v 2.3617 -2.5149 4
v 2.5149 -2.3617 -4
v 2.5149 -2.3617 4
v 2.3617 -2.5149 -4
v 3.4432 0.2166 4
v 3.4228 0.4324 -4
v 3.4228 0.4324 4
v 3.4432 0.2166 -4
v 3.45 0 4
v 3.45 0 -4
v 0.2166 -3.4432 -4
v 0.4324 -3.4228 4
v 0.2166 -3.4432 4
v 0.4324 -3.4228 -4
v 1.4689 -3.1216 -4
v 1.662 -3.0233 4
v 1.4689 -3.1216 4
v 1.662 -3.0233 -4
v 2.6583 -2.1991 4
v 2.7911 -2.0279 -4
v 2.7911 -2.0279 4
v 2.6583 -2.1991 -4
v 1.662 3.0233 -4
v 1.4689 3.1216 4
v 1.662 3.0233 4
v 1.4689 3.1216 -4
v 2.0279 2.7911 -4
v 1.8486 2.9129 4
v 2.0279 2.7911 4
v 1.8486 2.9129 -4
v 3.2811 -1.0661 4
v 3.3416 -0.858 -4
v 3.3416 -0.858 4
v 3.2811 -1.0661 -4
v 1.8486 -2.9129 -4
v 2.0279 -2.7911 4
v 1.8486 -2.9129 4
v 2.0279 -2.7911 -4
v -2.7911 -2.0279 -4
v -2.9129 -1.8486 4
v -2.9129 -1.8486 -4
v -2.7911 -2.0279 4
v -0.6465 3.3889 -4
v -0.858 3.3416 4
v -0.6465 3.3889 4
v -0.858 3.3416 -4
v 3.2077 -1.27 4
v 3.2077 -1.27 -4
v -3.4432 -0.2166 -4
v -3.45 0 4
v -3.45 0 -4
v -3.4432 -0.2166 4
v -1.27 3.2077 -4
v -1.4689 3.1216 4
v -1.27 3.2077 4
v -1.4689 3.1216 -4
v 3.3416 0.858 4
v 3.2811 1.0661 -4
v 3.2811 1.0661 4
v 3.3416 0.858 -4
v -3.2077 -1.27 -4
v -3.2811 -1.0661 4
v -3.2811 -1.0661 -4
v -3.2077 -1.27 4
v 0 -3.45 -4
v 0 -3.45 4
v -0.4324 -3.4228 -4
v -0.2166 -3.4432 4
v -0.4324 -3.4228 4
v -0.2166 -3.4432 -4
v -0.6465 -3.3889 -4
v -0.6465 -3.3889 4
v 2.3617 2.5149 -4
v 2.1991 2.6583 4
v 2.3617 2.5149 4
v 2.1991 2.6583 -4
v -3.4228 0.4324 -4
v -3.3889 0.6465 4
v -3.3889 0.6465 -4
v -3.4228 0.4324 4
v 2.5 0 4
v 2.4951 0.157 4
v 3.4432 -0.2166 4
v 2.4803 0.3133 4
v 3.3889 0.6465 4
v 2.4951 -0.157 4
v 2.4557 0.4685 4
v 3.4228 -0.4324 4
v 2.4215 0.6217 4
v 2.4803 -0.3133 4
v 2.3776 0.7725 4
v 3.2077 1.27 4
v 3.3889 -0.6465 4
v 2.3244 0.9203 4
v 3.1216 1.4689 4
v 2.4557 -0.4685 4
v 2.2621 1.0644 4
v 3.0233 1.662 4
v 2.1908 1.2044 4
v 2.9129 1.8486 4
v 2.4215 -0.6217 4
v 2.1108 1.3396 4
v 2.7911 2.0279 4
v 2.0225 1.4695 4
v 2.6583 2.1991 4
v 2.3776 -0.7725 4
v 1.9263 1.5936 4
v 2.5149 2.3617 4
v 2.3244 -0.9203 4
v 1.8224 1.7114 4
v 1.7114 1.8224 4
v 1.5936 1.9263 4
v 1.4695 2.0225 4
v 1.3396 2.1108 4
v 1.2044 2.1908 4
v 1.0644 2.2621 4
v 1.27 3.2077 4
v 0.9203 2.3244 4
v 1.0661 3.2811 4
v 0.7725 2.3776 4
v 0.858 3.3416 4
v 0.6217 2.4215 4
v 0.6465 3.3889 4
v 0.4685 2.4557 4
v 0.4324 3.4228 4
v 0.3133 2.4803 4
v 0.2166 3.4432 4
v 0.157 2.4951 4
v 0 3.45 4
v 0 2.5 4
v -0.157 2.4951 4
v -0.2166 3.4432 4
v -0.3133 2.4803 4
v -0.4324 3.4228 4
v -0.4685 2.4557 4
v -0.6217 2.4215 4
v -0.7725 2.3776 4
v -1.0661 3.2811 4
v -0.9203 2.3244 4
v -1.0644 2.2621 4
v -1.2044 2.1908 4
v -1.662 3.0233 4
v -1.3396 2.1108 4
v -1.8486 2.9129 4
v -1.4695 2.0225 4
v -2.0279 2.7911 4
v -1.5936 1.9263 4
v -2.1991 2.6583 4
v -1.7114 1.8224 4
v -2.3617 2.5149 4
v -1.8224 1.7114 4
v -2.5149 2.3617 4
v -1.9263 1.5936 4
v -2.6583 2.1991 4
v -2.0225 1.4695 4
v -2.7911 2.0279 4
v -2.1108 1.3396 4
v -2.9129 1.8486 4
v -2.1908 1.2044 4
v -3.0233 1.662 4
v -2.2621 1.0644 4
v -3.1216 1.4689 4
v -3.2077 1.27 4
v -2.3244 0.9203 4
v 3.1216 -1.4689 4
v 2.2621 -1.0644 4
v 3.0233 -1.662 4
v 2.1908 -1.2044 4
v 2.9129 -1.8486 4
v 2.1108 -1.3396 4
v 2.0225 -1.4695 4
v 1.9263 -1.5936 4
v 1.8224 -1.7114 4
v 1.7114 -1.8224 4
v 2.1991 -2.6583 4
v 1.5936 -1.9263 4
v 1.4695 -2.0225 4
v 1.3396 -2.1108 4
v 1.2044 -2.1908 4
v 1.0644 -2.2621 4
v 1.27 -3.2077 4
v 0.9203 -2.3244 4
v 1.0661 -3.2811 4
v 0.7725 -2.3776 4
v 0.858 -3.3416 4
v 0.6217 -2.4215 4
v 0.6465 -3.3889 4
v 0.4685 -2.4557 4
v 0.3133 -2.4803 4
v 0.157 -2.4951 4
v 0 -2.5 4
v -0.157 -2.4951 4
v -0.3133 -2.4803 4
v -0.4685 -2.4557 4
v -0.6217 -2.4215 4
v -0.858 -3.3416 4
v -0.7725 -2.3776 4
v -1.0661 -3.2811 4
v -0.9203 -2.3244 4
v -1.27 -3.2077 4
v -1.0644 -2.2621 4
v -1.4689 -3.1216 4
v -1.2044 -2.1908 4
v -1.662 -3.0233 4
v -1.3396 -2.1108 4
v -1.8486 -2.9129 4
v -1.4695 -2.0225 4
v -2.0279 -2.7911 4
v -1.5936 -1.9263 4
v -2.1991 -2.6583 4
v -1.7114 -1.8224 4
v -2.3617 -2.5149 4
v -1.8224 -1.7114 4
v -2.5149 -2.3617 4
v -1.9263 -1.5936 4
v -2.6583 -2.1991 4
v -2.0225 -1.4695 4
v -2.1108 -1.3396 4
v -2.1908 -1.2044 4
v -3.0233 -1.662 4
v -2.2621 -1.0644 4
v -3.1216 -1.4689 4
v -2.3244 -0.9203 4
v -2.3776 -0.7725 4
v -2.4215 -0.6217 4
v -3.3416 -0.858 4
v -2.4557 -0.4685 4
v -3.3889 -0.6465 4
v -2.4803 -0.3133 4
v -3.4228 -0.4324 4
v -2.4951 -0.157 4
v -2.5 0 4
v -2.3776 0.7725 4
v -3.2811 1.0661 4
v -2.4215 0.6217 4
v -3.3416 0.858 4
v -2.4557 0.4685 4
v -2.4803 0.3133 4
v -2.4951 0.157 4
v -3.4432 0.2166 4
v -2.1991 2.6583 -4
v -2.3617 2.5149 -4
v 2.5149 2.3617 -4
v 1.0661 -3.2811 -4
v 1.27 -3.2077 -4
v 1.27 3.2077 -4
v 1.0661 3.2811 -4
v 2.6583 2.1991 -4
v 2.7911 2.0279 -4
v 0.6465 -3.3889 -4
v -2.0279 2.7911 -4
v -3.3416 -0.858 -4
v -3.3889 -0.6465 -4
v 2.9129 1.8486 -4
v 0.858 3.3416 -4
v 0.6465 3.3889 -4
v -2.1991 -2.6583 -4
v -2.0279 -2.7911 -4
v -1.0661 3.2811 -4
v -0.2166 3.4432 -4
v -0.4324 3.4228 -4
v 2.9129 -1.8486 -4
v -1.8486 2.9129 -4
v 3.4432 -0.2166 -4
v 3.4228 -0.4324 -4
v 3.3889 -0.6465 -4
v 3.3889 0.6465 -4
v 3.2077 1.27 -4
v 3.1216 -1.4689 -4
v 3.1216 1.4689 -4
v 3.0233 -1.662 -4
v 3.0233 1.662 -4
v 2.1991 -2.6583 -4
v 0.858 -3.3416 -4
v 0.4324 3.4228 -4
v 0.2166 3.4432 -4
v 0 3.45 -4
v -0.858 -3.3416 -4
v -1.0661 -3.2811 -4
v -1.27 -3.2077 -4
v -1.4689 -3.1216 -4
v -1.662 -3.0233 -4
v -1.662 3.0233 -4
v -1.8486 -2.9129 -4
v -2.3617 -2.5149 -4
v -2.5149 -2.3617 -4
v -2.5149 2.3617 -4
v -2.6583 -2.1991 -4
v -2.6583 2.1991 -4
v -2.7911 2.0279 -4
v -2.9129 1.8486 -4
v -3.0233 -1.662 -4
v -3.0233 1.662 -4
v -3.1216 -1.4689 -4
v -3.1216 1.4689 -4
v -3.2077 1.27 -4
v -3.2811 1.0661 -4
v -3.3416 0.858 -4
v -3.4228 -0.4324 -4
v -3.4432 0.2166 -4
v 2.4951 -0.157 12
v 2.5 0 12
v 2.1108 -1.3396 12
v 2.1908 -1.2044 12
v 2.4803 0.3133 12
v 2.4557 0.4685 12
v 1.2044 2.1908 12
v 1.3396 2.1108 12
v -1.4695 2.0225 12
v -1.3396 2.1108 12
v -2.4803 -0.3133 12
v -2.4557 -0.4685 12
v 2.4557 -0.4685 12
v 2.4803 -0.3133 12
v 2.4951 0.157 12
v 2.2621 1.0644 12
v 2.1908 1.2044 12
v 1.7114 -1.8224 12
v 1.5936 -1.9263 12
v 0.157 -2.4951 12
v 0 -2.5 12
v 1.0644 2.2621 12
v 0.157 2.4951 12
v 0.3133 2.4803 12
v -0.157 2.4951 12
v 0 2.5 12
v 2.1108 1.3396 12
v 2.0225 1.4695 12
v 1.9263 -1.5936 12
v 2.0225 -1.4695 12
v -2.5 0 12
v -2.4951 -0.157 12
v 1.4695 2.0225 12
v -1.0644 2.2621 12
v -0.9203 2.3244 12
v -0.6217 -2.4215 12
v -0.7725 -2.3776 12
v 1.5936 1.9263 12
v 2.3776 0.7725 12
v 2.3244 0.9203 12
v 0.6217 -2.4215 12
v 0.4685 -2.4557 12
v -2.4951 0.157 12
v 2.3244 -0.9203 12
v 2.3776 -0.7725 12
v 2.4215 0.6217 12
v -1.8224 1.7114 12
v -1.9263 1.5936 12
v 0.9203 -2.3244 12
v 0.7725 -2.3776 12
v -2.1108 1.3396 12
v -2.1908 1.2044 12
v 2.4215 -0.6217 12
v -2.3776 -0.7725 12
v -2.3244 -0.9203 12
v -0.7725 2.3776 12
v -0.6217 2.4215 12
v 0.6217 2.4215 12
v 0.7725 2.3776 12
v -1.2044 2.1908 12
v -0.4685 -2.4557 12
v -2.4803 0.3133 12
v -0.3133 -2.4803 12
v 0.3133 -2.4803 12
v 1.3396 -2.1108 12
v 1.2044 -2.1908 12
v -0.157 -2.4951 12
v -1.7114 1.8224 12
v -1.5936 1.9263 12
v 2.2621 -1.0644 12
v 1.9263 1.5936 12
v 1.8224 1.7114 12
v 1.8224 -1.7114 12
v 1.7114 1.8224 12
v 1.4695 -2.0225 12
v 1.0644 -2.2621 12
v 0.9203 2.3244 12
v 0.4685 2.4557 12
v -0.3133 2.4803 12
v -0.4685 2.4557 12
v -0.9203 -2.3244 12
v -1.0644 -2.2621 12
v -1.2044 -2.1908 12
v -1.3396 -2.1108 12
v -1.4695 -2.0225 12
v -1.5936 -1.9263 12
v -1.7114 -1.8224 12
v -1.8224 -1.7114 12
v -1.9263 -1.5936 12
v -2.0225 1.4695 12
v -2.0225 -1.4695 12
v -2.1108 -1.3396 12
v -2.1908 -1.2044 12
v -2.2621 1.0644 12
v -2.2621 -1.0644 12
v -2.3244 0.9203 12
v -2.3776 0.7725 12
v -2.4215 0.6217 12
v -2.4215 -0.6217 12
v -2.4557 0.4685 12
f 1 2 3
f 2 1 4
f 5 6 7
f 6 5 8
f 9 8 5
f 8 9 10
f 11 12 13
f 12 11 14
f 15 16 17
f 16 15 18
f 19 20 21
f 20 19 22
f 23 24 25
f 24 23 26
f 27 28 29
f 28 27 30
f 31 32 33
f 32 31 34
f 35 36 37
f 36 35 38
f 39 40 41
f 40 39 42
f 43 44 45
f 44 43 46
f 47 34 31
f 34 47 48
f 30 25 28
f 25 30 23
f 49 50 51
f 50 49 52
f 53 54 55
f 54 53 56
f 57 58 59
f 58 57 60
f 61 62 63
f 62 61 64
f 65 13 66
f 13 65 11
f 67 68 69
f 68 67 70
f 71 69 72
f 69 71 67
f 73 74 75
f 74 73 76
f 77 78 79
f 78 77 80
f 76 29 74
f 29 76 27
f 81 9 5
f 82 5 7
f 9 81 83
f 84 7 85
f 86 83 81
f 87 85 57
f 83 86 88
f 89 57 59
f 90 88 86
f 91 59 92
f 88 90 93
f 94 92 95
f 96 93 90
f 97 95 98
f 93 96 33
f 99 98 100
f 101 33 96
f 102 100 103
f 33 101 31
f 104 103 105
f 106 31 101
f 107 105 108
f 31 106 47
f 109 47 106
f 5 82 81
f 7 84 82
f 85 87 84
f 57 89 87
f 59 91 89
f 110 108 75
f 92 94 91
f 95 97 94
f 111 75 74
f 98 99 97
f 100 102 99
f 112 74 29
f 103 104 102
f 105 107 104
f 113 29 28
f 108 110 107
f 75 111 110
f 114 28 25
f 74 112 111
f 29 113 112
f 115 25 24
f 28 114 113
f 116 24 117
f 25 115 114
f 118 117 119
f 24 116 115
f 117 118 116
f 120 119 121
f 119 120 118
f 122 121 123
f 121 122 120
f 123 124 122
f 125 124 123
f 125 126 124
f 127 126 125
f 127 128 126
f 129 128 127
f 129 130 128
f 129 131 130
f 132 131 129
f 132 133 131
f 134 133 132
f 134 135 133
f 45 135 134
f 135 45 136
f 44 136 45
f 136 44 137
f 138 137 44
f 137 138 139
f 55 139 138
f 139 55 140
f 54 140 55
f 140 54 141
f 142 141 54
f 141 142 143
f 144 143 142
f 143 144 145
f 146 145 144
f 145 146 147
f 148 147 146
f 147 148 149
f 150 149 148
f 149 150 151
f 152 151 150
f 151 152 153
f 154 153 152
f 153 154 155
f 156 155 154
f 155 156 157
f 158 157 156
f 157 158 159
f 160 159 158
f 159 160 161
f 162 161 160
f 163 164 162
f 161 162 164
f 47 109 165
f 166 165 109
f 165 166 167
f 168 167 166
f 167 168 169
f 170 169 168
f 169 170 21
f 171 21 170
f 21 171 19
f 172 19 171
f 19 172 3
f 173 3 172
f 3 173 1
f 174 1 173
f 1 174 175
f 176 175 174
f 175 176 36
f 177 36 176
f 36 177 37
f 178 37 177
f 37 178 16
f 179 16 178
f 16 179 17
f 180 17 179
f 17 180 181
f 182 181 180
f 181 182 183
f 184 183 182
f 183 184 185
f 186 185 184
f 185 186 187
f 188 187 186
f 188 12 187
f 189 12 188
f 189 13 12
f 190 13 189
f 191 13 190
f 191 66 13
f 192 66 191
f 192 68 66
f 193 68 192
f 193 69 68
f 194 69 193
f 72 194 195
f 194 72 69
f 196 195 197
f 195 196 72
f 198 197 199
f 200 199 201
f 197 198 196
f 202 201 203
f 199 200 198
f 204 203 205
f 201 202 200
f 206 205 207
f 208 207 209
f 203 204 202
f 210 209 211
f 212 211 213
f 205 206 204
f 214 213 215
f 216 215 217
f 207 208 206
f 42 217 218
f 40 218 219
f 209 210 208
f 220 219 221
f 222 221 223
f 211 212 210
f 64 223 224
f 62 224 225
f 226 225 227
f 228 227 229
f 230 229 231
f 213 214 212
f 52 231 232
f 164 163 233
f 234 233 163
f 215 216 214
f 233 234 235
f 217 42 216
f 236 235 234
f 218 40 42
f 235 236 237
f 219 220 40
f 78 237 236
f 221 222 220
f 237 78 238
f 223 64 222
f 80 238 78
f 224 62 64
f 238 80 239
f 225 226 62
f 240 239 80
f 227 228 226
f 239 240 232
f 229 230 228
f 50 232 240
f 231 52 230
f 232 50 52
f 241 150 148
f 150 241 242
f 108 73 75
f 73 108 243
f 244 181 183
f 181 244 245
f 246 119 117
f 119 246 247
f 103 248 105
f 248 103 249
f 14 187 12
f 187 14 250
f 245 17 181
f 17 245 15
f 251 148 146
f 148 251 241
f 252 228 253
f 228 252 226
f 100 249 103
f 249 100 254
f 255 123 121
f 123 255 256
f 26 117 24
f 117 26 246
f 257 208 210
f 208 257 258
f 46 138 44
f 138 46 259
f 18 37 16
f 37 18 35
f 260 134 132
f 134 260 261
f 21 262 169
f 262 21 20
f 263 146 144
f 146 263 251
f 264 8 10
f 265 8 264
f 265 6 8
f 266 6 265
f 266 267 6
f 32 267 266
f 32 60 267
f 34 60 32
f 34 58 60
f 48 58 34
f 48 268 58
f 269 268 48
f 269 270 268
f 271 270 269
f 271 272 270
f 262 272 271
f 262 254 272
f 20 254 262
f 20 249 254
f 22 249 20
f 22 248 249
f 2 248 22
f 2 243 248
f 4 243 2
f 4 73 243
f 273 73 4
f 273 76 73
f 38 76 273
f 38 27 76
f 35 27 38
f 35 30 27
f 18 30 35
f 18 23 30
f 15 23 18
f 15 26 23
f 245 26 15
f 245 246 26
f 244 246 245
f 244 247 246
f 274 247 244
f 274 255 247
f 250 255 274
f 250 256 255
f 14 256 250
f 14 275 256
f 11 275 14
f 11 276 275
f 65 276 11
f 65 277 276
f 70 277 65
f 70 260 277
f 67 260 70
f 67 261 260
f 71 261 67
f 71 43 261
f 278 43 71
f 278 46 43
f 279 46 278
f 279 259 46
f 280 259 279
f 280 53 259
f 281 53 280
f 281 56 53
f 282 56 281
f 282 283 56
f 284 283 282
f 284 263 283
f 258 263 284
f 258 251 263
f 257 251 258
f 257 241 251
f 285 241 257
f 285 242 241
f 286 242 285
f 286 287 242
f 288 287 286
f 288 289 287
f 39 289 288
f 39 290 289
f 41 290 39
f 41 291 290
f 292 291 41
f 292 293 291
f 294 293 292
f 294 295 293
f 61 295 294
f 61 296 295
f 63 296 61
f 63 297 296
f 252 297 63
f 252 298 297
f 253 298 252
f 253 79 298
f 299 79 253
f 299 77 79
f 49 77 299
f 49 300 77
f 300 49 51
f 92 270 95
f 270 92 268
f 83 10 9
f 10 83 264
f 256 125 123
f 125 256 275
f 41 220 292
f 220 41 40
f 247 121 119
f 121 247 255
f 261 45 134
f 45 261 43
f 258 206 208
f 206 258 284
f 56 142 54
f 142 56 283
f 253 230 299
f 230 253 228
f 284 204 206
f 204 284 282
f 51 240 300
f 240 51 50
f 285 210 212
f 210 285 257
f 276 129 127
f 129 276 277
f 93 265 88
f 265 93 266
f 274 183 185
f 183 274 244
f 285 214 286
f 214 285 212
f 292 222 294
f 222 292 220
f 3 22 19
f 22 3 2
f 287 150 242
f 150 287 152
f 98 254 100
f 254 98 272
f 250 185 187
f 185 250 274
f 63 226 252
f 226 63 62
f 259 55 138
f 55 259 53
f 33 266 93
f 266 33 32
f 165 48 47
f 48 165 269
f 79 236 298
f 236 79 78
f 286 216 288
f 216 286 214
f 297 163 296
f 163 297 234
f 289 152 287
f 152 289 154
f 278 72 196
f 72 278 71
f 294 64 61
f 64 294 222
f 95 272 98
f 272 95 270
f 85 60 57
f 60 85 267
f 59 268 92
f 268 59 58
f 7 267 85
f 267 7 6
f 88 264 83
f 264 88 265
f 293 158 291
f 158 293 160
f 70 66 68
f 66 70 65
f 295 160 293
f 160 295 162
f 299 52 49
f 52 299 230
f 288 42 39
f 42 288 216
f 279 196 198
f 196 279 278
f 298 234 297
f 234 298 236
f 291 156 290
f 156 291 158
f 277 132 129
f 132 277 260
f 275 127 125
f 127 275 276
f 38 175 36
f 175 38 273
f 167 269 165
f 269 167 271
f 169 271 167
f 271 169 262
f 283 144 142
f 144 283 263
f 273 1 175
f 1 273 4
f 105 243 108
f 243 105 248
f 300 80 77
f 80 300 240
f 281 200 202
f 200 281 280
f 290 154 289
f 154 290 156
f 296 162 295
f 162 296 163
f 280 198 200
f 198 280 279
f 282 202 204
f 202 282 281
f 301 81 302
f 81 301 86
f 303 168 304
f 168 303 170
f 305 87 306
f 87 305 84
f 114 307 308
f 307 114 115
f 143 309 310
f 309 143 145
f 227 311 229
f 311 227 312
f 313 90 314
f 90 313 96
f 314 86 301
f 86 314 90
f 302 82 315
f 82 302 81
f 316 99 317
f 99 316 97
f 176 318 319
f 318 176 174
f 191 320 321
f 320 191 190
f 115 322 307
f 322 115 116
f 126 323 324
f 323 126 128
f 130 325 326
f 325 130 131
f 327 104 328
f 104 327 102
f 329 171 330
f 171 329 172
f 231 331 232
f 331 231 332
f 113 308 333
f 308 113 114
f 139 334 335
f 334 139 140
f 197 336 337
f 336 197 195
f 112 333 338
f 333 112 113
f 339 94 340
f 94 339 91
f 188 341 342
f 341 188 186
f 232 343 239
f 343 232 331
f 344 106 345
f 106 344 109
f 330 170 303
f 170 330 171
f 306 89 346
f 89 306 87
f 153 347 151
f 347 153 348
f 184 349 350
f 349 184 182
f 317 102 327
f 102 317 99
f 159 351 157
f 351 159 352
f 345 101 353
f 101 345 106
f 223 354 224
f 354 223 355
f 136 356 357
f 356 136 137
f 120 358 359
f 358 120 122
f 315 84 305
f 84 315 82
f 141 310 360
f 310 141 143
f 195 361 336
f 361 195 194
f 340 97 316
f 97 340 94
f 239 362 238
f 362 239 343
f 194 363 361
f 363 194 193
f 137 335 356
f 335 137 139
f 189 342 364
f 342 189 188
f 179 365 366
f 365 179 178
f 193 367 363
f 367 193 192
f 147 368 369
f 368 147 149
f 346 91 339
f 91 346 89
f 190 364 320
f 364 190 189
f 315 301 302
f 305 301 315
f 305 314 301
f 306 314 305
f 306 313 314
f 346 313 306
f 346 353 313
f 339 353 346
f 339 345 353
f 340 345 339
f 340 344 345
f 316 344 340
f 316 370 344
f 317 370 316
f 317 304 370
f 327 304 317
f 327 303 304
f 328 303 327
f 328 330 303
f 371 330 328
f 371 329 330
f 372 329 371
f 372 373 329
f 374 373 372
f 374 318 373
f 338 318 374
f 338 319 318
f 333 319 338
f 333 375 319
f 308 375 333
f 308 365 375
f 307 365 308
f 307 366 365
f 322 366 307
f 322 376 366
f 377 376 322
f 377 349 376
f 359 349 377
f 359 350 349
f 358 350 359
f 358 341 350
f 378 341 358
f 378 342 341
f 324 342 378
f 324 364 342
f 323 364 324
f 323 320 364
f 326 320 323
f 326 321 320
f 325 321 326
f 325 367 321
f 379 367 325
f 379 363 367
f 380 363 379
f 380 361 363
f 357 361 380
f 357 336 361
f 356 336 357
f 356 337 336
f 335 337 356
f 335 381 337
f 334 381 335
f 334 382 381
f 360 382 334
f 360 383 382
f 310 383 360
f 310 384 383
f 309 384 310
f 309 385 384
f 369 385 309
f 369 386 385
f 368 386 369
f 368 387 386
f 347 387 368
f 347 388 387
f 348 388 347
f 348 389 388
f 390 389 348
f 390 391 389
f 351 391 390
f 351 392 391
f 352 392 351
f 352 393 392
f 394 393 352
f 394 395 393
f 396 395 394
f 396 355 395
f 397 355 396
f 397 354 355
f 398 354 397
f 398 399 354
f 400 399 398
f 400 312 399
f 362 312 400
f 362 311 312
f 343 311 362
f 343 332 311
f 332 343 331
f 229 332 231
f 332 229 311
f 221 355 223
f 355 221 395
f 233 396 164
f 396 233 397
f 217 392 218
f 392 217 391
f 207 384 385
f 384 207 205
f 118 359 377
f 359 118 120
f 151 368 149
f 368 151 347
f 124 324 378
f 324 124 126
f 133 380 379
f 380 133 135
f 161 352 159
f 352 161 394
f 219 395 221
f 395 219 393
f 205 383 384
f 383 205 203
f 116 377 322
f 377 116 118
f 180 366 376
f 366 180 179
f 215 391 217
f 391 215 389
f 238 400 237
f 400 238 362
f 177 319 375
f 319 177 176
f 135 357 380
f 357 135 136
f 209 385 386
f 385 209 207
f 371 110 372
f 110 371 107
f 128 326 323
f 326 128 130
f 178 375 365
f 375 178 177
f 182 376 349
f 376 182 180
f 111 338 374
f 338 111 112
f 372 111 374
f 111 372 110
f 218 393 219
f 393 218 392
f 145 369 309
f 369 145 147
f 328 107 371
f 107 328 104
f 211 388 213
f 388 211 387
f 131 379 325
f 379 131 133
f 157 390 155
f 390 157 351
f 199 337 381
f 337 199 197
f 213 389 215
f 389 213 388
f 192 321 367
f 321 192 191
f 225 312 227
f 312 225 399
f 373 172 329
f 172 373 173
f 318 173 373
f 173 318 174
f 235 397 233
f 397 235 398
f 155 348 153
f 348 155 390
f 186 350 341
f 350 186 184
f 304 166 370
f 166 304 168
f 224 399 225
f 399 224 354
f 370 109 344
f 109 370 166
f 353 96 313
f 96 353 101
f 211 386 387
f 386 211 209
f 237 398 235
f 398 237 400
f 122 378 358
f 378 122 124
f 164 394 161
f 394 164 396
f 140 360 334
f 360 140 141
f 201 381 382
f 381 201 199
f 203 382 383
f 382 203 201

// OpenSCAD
module hlavni_objekt(){
cylinder(h=8,r=3.45,center=true,$fn=100);
translate([0,0,8]){
cylinder(h=8,r=2.5,center=true,$fn=100);
}}

hlavni_objekt();
